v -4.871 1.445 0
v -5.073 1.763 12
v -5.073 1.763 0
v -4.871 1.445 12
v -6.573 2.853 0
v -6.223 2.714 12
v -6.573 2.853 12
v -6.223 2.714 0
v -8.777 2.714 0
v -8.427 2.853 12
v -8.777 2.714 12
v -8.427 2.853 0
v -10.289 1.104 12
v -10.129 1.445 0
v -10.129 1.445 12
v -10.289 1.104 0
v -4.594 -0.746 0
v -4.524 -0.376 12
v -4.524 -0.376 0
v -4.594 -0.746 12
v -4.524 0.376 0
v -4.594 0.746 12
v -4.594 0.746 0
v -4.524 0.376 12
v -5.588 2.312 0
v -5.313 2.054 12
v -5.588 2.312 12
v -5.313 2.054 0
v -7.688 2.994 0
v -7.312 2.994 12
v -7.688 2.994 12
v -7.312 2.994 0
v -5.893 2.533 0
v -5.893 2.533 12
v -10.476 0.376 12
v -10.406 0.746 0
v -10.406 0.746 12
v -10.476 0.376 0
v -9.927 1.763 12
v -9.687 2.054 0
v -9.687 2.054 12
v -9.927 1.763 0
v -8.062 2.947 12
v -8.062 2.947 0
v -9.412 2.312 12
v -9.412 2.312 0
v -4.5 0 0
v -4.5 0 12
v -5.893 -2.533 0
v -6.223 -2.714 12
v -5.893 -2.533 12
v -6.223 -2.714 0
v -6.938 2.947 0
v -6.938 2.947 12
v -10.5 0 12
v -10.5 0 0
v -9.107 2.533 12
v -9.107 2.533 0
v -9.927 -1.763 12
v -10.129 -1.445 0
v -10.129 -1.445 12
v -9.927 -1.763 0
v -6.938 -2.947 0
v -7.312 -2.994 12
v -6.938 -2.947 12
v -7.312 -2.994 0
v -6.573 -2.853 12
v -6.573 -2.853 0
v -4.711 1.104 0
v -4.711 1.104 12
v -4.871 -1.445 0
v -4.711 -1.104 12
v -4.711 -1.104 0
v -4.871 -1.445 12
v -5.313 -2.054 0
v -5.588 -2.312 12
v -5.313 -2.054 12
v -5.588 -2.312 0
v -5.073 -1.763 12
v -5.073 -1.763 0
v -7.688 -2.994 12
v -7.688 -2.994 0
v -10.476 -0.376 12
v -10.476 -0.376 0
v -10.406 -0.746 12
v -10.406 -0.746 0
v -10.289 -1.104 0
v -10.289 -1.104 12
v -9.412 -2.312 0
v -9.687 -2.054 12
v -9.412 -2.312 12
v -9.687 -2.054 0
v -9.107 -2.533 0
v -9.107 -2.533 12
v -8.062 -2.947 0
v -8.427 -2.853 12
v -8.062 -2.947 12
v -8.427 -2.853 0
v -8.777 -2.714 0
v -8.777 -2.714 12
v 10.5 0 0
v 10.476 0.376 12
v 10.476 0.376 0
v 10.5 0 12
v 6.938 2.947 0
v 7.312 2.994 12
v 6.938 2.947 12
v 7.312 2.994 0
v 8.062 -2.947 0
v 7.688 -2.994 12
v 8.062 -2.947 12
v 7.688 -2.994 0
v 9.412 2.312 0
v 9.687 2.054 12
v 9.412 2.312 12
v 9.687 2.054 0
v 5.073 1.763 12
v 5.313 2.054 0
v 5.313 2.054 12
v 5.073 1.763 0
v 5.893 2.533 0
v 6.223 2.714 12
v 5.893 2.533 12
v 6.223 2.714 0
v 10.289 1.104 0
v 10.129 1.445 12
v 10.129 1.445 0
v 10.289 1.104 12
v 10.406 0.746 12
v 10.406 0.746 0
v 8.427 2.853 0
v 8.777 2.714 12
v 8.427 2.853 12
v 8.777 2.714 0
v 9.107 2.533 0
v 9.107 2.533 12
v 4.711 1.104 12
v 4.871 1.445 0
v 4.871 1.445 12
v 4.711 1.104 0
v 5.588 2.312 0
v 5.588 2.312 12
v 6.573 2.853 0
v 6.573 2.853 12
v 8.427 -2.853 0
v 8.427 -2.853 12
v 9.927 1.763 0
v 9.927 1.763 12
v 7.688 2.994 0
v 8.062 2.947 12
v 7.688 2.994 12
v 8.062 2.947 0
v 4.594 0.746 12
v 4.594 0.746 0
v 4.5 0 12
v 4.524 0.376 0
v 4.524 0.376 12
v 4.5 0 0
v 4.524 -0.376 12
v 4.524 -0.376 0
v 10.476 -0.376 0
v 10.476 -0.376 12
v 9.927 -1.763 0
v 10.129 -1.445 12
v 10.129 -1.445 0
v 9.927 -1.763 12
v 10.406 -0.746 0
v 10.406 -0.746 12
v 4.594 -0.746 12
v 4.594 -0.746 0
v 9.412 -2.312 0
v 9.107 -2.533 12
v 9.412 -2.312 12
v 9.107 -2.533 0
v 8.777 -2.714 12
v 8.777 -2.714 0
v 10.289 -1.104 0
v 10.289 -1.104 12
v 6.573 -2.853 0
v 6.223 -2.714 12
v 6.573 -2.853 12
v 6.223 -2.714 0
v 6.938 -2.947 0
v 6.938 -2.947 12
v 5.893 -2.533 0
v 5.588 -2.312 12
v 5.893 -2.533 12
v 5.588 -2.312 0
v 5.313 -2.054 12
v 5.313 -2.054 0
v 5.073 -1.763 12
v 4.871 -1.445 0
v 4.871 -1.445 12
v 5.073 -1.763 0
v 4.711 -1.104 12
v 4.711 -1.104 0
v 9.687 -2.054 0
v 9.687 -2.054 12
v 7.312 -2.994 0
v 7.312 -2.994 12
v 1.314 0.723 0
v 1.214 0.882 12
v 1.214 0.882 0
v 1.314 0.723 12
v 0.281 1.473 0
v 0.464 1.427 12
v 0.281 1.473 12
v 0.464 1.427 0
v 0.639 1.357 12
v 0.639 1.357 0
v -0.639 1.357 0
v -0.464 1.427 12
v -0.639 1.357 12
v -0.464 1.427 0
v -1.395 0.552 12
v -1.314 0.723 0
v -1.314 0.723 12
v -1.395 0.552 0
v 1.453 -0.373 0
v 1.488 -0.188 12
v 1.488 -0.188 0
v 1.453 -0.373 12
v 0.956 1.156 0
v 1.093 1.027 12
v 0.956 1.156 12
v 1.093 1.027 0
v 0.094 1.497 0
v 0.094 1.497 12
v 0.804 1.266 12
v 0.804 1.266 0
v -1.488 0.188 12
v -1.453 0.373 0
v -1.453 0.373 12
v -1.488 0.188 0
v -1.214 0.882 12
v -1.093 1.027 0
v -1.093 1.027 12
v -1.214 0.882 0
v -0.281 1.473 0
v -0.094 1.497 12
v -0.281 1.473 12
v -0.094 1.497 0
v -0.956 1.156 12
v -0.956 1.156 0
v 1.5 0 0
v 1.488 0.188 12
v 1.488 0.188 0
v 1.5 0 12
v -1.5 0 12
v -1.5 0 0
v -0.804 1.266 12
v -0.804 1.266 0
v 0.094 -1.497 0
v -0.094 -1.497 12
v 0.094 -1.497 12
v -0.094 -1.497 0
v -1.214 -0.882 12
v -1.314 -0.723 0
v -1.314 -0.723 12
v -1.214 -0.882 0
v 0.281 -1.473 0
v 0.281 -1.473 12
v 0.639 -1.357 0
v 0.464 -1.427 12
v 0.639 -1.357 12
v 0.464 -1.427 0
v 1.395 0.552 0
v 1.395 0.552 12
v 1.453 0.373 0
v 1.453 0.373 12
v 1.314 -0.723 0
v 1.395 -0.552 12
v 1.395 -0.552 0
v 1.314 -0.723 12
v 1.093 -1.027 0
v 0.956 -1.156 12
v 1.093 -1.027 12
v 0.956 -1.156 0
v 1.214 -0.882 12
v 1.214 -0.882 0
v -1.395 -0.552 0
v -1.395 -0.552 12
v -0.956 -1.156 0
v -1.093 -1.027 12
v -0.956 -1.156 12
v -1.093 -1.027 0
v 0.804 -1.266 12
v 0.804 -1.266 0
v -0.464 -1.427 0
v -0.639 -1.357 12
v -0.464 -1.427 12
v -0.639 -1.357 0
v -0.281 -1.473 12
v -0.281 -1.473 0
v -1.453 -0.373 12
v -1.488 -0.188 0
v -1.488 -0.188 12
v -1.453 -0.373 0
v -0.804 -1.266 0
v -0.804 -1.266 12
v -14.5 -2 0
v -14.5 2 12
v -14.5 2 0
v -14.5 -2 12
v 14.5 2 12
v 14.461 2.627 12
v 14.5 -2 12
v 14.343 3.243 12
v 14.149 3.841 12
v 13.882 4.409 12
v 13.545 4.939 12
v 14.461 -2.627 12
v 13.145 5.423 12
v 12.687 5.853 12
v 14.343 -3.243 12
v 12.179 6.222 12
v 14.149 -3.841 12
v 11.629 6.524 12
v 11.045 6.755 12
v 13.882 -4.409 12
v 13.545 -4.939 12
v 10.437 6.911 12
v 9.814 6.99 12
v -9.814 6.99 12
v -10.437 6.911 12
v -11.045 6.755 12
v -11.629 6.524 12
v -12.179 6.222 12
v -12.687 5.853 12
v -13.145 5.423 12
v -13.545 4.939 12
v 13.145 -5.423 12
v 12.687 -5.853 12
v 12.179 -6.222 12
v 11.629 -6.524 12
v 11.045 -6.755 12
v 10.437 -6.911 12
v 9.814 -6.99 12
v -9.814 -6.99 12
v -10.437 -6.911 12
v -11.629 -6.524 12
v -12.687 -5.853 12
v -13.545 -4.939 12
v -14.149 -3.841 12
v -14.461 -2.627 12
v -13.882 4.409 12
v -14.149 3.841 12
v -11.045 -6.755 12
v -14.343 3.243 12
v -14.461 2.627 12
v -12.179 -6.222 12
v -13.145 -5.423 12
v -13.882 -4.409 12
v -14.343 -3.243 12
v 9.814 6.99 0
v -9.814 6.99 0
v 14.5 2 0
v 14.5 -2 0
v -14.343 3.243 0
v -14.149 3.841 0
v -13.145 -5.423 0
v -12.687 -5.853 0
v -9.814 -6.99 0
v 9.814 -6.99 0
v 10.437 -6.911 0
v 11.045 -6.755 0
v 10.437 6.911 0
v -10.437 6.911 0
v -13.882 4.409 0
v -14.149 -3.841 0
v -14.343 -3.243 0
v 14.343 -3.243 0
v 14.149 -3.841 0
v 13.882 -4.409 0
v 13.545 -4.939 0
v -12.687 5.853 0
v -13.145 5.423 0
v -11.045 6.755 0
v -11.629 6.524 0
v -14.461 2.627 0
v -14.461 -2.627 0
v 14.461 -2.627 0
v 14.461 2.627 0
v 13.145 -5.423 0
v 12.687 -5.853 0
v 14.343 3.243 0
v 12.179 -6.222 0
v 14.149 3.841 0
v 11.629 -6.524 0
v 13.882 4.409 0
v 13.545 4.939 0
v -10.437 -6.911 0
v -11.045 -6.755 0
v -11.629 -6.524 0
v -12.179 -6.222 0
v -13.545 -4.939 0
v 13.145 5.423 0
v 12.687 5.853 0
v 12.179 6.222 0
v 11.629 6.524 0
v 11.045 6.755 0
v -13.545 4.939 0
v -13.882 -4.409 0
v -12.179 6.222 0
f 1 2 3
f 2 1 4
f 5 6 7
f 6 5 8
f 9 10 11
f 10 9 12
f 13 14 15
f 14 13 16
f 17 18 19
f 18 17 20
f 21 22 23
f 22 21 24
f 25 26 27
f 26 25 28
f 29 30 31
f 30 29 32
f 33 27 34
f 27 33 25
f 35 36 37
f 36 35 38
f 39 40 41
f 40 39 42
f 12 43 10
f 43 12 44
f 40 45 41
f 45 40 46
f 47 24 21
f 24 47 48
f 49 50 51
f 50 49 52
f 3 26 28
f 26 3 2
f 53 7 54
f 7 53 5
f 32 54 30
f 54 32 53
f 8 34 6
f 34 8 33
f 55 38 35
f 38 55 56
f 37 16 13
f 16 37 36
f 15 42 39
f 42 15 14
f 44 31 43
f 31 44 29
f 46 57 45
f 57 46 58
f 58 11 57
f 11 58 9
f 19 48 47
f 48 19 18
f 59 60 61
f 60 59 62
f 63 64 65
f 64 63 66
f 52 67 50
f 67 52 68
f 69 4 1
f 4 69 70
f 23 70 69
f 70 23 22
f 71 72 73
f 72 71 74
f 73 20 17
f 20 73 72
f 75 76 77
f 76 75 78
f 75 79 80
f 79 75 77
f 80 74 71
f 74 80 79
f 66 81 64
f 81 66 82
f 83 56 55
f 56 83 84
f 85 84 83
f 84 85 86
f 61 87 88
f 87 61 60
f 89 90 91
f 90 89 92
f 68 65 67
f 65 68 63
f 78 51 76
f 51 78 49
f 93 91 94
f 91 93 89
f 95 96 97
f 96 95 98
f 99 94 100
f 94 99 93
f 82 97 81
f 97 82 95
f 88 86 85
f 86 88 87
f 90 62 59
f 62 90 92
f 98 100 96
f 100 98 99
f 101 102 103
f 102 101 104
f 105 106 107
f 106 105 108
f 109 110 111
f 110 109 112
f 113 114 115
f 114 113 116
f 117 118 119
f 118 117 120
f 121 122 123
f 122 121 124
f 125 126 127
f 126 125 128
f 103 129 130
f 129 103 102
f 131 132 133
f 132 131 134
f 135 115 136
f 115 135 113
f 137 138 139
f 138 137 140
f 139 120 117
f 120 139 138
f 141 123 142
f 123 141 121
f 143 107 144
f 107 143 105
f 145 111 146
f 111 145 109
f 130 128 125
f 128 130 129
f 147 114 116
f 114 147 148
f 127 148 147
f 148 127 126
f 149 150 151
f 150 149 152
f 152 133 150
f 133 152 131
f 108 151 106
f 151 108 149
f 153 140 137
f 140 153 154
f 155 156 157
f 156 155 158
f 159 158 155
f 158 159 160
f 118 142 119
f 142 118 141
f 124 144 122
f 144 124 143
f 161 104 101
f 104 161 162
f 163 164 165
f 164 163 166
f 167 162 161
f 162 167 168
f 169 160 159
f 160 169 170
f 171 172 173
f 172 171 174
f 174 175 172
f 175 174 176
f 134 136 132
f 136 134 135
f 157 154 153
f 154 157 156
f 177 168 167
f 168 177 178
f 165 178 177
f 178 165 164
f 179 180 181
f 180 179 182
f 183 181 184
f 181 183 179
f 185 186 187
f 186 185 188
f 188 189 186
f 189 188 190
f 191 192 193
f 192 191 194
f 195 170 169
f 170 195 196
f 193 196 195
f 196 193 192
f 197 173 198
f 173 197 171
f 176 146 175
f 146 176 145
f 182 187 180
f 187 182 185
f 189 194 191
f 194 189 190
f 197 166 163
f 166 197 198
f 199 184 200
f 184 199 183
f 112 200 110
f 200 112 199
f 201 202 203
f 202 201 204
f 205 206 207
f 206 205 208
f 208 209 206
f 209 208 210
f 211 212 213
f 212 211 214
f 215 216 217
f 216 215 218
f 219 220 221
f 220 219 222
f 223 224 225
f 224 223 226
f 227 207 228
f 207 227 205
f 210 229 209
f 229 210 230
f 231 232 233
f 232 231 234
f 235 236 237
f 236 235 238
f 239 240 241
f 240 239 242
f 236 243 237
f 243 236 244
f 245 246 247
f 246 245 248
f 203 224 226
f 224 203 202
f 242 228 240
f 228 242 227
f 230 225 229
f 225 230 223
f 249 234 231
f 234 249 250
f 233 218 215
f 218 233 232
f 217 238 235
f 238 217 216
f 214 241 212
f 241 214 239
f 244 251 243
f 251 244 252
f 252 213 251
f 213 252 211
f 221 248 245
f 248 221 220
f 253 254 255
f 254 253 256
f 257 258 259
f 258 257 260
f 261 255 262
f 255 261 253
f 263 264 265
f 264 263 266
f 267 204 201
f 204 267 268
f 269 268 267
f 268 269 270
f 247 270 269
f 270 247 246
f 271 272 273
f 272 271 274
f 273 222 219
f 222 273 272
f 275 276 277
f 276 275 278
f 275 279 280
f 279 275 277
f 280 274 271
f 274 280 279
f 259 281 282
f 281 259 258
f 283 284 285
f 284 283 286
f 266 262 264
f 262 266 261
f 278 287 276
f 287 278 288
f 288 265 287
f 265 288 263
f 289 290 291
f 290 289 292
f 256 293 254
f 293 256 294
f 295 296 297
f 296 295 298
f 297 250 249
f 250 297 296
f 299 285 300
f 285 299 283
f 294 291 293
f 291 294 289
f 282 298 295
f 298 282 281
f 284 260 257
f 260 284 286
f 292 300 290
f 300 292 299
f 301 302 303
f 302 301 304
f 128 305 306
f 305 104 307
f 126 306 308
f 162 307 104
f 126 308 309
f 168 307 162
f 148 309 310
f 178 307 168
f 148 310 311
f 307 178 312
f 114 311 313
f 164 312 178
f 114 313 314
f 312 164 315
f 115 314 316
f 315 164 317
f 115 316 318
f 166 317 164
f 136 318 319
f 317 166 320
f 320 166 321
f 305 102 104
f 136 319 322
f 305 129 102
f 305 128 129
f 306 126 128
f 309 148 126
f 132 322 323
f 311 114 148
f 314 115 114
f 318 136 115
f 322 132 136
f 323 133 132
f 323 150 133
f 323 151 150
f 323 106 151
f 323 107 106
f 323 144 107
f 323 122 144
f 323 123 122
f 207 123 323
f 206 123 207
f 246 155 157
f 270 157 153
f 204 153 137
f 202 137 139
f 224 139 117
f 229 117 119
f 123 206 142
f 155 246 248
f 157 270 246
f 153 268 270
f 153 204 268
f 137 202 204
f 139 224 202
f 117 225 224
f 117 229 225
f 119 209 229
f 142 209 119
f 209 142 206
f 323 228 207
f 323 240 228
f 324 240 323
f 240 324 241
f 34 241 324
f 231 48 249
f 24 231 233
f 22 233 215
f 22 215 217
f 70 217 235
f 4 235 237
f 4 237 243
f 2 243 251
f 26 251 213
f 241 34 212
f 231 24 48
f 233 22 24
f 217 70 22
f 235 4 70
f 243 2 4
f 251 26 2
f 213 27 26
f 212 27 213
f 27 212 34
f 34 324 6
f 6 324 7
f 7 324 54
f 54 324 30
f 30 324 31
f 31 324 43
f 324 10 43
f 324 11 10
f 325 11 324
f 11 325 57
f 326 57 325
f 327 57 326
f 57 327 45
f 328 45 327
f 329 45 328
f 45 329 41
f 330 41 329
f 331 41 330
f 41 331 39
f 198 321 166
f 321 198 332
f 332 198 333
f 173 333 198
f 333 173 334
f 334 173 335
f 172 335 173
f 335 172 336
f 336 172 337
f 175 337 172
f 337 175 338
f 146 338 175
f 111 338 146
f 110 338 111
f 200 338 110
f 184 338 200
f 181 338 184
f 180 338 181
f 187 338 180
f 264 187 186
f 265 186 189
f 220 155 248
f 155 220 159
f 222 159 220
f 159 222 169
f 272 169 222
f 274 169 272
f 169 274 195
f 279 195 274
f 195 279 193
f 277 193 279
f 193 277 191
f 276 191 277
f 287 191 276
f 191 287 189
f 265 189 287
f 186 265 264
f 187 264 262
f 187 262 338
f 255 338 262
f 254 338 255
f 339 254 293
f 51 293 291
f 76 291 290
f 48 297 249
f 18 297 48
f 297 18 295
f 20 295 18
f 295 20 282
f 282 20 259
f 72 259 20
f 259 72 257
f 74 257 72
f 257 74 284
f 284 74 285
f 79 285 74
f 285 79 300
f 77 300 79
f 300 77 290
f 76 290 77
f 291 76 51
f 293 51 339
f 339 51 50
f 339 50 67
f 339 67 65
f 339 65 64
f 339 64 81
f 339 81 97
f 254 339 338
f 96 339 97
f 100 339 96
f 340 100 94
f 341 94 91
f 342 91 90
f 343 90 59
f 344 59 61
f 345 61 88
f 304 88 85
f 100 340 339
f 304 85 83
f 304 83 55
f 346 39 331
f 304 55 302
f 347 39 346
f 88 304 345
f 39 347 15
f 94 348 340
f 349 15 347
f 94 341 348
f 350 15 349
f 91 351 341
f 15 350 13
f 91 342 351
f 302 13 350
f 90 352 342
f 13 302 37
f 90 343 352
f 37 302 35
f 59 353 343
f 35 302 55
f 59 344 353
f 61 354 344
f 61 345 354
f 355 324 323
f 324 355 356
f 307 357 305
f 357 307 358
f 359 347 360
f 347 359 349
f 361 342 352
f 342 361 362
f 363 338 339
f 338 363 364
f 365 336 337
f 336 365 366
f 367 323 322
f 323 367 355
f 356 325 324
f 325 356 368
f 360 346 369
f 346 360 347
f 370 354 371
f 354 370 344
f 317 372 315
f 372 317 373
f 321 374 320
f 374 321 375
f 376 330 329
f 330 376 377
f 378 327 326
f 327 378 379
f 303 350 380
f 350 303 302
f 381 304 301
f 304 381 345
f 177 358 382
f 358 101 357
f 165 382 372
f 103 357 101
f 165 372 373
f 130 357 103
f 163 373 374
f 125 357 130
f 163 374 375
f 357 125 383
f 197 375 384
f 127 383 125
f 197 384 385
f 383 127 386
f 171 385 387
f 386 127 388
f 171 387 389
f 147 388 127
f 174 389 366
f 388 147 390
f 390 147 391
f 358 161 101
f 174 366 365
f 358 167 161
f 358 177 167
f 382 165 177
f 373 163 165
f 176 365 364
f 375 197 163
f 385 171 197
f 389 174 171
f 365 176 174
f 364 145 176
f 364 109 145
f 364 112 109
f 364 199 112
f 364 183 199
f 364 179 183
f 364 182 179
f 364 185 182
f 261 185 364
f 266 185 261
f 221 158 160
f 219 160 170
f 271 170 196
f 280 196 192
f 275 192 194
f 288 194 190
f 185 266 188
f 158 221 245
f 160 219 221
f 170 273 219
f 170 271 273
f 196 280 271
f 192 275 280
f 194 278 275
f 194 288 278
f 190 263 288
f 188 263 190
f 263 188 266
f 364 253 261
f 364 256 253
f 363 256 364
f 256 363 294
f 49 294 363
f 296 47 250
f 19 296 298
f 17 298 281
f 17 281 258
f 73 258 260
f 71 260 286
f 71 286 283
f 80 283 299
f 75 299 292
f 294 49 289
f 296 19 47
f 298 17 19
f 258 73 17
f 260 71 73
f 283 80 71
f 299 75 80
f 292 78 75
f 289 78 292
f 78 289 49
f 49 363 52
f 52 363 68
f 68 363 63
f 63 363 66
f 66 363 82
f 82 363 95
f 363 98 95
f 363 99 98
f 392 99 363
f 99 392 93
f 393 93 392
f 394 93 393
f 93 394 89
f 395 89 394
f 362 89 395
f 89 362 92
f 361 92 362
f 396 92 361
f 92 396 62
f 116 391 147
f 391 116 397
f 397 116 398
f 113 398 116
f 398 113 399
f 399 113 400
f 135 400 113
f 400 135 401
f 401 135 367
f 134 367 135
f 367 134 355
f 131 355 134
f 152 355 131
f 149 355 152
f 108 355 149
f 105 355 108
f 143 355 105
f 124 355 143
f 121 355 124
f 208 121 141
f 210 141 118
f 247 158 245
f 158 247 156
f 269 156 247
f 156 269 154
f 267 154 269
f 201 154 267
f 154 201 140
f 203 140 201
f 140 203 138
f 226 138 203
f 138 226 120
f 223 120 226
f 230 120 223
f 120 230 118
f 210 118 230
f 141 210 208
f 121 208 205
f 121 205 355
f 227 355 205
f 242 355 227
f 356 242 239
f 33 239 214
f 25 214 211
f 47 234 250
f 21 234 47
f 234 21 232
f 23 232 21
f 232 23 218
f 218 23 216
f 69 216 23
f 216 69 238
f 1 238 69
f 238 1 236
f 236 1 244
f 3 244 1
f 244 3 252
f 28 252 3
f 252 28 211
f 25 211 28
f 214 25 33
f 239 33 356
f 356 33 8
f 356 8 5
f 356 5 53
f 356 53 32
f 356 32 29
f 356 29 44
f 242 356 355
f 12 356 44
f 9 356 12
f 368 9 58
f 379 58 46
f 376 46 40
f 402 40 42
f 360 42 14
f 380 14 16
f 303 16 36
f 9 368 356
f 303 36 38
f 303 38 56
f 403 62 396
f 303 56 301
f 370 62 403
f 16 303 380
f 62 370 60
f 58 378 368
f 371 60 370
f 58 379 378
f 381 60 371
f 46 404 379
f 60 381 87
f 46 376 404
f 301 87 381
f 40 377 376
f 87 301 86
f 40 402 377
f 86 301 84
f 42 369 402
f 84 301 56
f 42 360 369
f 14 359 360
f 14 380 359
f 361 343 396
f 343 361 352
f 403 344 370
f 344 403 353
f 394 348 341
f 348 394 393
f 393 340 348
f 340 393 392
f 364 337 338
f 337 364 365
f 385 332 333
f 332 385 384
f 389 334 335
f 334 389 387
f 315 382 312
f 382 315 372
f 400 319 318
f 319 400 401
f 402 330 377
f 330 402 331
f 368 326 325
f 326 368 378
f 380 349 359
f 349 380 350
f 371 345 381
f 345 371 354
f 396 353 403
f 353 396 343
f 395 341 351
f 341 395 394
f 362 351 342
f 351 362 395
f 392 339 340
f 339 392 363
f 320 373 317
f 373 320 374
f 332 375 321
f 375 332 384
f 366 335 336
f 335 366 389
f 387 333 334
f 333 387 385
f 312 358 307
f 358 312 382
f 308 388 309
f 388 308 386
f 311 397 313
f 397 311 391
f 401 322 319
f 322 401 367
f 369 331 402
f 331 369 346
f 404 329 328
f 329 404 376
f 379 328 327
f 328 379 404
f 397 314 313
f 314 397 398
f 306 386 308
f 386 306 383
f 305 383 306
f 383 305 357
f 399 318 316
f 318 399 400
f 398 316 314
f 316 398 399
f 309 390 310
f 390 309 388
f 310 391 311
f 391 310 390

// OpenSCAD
$fn = 50;


difference() {
	union() {
		hull() {
			translate(v = [-9.5000000000, 2.0000000000, 0]) {
				cylinder(h = 12, r = 5);
			}
			translate(v = [9.5000000000, 2.0000000000, 0]) {
				cylinder(h = 12, r = 5);
			}
			translate(v = [-9.5000000000, -2.0000000000, 0]) {
				cylinder(h = 12, r = 5);
			}
			translate(v = [9.5000000000, -2.0000000000, 0]) {
				cylinder(h = 12, r = 5);
			}
		}
	}
	union() {
		translate(v = [-7.5000000000, 0.0000000000, 0]) {
			translate(v = [0, 0, -100]) {
				cylinder(h = 200, r = 3.0000000000);
			}
		}
		translate(v = [7.5000000000, 0.0000000000, 0]) {
			translate(v = [0, 0, -100]) {
				cylinder(h = 200, r = 3.0000000000);
			}
		}
		translate(v = [-7.5000000000, 0.0000000000, 0]) {
			translate(v = [0, 0, -100]) {
				cylinder(h = 200, r = 1.5000000000);
			}
		}
		translate(v = [0, 0, -100]) {
			cylinder(h = 200, r = 1.5000000000);
		}
		translate(v = [7.5000000000, 0.0000000000, 0]) {
			translate(v = [0, 0, -100]) {
				cylinder(h = 200, r = 1.5000000000);
			}
		}
	}
}
